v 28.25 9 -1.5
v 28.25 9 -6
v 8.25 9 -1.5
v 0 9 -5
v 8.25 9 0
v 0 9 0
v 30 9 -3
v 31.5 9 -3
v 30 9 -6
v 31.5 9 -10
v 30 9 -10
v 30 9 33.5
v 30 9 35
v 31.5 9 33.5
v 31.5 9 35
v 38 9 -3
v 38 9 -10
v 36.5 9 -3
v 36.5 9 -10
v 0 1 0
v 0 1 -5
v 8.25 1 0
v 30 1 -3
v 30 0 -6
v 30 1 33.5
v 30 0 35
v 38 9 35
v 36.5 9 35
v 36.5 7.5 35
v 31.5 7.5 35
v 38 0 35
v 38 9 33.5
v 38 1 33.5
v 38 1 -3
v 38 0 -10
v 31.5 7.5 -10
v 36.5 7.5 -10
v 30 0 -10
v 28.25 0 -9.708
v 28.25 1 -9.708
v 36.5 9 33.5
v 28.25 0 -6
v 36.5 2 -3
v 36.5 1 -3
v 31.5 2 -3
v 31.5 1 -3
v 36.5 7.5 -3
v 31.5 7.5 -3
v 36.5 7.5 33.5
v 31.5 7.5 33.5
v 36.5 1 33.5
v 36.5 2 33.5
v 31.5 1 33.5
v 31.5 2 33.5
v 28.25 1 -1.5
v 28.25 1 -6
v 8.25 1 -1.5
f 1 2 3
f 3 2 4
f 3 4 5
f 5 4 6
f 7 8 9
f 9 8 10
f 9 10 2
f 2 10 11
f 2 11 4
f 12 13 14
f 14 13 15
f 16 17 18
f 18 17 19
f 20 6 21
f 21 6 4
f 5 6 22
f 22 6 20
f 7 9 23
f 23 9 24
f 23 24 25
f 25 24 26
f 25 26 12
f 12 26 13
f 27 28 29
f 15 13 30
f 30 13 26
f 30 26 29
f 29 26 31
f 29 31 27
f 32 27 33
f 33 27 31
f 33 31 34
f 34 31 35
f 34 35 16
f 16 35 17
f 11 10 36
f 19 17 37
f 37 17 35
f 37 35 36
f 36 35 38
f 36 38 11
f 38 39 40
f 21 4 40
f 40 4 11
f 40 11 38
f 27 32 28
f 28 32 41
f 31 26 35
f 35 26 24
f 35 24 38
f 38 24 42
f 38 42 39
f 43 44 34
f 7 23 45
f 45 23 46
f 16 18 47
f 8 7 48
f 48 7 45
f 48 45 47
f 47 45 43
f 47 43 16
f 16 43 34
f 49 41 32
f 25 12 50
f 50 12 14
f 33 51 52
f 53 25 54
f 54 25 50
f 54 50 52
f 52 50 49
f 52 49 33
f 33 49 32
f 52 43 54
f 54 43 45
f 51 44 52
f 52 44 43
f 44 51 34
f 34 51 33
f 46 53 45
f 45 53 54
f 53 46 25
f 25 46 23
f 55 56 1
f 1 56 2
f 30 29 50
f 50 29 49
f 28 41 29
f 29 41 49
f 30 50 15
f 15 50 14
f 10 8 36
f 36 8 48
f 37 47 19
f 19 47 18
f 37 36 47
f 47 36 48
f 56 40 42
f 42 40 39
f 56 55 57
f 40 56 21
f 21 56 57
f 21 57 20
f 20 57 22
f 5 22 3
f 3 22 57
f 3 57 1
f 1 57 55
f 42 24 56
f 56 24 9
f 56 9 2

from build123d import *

# Parameters (mm, degrees)
BOSS_EXTRUDE1_DEPTH = 9
SKETCH2_W           = 8
SKETCH2_H           = 36.5
CUT_EXTRUDE2_DEPTH  = 7
SKETCH3_W           = 1.5
SKETCH3_H           = 36.5
CUT_EXTRUDE3_DEPTH  = 1
SKETCH4_W           = 1.75
SKETCH4_H           = 3
CUT_EXTRUDE4_DEPTH  = 53.440442409
SKETCH5_W           = 5
SKETCH5_H           = 45
CUT_EXTRUDE5_DEPTH  = 1.5
CUT_EXTRUDE6_DEPTH  = 1
SKETCH7_W           = 20
SKETCH7_H           = 1.5
CUT_EXTRUDE7_DEPTH  = 53.440442409
SKETCH8_W           = 1.75
SKETCH8_H           = 3
CUT_EXTRUDE8_DEPTH  = 53.440442409


with BuildPart() as part:
    # Sketch1 → Boss-Extrude1 (new body)
    with BuildSketch(Plane(origin=(0, 0, 0), x_dir=(1, 0, 0), z_dir=(0, 1, 0))):
        Polygon((0, 0), (30, 0), (30, -35), (38, -35), (38, 10), (30, 10), (0, 5), align=None)
    extrude(amount=BOSS_EXTRUDE1_DEPTH)

    # Sketch2 → Cut-Extrude2 (cut)
    with BuildSketch(Plane(origin=(0, 9, 0), x_dir=(1, 0, 0), z_dir=(0, 1, 0))):
        with Locations((34, -15.25)):
            Rectangle(SKETCH2_W, SKETCH2_H)
    extrude(amount=-CUT_EXTRUDE2_DEPTH, mode=Mode.SUBTRACT)

    # Sketch3 → Cut-Extrude3 (cut)
    with BuildSketch(Plane(origin=(0, 2, 0), x_dir=(1, 0, 0), z_dir=(0, 1, 0))):
        with Locations((37.25, -15.25)):
            Rectangle(SKETCH3_W, SKETCH3_H)
        with Locations((30.75, -15.25)):
            Rectangle(SKETCH3_W, SKETCH3_H)
    extrude(amount=-CUT_EXTRUDE3_DEPTH, mode=Mode.SUBTRACT)

    # Sketch4 → Cut-Extrude4 (cut, through all)
    with BuildSketch(Plane(origin=(0, 9, 0), x_dir=(1, 0, 0), z_dir=(0, 1, 0))):
        with Locations((29.125, 1.5)):
            Rectangle(SKETCH4_W, SKETCH4_H)
    extrude(amount=-CUT_EXTRUDE4_DEPTH, mode=Mode.SUBTRACT)

    # Sketch5 → Cut-Extrude5 (cut)
    with BuildSketch(Plane(origin=(0, 9, 0), x_dir=(1, 0, 0), z_dir=(0, 1, 0))):
        with Locations((34, -12.5)):
            Rectangle(SKETCH5_W, SKETCH5_H)
    extrude(amount=-CUT_EXTRUDE5_DEPTH, mode=Mode.SUBTRACT)

    # Sketch6 → Cut-Extrude6 (cut)
    with BuildSketch(Plane(origin=(0, 0, 0), x_dir=(-1, 0, 0), z_dir=(0, -1, 0))):
        Polygon((-28.25, 0), (-28.25, 9.708333333), (0, 5), (0, 0), align=None)
    extrude(amount=-CUT_EXTRUDE6_DEPTH, mode=Mode.SUBTRACT)

    # Sketch7 → Cut-Extrude7 (cut, through all)
    with BuildSketch(Plane(origin=(0, 9, 0), x_dir=(1, 0, 0), z_dir=(0, 1, 0))):
        with Locations((18.25, 0.75)):
            Rectangle(SKETCH7_W, SKETCH7_H)
    extrude(amount=-CUT_EXTRUDE7_DEPTH, mode=Mode.SUBTRACT)

    # Sketch8 → Cut-Extrude8 (cut, through all)
    with BuildSketch(Plane(origin=(0, 9, 0), x_dir=(1, 0, 0), z_dir=(0, 1, 0))):
        with Locations((29.125, 4.5)):
            Rectangle(SKETCH8_W, SKETCH8_H)
    extrude(amount=-CUT_EXTRUDE8_DEPTH, mode=Mode.SUBTRACT)


solid = part.part
